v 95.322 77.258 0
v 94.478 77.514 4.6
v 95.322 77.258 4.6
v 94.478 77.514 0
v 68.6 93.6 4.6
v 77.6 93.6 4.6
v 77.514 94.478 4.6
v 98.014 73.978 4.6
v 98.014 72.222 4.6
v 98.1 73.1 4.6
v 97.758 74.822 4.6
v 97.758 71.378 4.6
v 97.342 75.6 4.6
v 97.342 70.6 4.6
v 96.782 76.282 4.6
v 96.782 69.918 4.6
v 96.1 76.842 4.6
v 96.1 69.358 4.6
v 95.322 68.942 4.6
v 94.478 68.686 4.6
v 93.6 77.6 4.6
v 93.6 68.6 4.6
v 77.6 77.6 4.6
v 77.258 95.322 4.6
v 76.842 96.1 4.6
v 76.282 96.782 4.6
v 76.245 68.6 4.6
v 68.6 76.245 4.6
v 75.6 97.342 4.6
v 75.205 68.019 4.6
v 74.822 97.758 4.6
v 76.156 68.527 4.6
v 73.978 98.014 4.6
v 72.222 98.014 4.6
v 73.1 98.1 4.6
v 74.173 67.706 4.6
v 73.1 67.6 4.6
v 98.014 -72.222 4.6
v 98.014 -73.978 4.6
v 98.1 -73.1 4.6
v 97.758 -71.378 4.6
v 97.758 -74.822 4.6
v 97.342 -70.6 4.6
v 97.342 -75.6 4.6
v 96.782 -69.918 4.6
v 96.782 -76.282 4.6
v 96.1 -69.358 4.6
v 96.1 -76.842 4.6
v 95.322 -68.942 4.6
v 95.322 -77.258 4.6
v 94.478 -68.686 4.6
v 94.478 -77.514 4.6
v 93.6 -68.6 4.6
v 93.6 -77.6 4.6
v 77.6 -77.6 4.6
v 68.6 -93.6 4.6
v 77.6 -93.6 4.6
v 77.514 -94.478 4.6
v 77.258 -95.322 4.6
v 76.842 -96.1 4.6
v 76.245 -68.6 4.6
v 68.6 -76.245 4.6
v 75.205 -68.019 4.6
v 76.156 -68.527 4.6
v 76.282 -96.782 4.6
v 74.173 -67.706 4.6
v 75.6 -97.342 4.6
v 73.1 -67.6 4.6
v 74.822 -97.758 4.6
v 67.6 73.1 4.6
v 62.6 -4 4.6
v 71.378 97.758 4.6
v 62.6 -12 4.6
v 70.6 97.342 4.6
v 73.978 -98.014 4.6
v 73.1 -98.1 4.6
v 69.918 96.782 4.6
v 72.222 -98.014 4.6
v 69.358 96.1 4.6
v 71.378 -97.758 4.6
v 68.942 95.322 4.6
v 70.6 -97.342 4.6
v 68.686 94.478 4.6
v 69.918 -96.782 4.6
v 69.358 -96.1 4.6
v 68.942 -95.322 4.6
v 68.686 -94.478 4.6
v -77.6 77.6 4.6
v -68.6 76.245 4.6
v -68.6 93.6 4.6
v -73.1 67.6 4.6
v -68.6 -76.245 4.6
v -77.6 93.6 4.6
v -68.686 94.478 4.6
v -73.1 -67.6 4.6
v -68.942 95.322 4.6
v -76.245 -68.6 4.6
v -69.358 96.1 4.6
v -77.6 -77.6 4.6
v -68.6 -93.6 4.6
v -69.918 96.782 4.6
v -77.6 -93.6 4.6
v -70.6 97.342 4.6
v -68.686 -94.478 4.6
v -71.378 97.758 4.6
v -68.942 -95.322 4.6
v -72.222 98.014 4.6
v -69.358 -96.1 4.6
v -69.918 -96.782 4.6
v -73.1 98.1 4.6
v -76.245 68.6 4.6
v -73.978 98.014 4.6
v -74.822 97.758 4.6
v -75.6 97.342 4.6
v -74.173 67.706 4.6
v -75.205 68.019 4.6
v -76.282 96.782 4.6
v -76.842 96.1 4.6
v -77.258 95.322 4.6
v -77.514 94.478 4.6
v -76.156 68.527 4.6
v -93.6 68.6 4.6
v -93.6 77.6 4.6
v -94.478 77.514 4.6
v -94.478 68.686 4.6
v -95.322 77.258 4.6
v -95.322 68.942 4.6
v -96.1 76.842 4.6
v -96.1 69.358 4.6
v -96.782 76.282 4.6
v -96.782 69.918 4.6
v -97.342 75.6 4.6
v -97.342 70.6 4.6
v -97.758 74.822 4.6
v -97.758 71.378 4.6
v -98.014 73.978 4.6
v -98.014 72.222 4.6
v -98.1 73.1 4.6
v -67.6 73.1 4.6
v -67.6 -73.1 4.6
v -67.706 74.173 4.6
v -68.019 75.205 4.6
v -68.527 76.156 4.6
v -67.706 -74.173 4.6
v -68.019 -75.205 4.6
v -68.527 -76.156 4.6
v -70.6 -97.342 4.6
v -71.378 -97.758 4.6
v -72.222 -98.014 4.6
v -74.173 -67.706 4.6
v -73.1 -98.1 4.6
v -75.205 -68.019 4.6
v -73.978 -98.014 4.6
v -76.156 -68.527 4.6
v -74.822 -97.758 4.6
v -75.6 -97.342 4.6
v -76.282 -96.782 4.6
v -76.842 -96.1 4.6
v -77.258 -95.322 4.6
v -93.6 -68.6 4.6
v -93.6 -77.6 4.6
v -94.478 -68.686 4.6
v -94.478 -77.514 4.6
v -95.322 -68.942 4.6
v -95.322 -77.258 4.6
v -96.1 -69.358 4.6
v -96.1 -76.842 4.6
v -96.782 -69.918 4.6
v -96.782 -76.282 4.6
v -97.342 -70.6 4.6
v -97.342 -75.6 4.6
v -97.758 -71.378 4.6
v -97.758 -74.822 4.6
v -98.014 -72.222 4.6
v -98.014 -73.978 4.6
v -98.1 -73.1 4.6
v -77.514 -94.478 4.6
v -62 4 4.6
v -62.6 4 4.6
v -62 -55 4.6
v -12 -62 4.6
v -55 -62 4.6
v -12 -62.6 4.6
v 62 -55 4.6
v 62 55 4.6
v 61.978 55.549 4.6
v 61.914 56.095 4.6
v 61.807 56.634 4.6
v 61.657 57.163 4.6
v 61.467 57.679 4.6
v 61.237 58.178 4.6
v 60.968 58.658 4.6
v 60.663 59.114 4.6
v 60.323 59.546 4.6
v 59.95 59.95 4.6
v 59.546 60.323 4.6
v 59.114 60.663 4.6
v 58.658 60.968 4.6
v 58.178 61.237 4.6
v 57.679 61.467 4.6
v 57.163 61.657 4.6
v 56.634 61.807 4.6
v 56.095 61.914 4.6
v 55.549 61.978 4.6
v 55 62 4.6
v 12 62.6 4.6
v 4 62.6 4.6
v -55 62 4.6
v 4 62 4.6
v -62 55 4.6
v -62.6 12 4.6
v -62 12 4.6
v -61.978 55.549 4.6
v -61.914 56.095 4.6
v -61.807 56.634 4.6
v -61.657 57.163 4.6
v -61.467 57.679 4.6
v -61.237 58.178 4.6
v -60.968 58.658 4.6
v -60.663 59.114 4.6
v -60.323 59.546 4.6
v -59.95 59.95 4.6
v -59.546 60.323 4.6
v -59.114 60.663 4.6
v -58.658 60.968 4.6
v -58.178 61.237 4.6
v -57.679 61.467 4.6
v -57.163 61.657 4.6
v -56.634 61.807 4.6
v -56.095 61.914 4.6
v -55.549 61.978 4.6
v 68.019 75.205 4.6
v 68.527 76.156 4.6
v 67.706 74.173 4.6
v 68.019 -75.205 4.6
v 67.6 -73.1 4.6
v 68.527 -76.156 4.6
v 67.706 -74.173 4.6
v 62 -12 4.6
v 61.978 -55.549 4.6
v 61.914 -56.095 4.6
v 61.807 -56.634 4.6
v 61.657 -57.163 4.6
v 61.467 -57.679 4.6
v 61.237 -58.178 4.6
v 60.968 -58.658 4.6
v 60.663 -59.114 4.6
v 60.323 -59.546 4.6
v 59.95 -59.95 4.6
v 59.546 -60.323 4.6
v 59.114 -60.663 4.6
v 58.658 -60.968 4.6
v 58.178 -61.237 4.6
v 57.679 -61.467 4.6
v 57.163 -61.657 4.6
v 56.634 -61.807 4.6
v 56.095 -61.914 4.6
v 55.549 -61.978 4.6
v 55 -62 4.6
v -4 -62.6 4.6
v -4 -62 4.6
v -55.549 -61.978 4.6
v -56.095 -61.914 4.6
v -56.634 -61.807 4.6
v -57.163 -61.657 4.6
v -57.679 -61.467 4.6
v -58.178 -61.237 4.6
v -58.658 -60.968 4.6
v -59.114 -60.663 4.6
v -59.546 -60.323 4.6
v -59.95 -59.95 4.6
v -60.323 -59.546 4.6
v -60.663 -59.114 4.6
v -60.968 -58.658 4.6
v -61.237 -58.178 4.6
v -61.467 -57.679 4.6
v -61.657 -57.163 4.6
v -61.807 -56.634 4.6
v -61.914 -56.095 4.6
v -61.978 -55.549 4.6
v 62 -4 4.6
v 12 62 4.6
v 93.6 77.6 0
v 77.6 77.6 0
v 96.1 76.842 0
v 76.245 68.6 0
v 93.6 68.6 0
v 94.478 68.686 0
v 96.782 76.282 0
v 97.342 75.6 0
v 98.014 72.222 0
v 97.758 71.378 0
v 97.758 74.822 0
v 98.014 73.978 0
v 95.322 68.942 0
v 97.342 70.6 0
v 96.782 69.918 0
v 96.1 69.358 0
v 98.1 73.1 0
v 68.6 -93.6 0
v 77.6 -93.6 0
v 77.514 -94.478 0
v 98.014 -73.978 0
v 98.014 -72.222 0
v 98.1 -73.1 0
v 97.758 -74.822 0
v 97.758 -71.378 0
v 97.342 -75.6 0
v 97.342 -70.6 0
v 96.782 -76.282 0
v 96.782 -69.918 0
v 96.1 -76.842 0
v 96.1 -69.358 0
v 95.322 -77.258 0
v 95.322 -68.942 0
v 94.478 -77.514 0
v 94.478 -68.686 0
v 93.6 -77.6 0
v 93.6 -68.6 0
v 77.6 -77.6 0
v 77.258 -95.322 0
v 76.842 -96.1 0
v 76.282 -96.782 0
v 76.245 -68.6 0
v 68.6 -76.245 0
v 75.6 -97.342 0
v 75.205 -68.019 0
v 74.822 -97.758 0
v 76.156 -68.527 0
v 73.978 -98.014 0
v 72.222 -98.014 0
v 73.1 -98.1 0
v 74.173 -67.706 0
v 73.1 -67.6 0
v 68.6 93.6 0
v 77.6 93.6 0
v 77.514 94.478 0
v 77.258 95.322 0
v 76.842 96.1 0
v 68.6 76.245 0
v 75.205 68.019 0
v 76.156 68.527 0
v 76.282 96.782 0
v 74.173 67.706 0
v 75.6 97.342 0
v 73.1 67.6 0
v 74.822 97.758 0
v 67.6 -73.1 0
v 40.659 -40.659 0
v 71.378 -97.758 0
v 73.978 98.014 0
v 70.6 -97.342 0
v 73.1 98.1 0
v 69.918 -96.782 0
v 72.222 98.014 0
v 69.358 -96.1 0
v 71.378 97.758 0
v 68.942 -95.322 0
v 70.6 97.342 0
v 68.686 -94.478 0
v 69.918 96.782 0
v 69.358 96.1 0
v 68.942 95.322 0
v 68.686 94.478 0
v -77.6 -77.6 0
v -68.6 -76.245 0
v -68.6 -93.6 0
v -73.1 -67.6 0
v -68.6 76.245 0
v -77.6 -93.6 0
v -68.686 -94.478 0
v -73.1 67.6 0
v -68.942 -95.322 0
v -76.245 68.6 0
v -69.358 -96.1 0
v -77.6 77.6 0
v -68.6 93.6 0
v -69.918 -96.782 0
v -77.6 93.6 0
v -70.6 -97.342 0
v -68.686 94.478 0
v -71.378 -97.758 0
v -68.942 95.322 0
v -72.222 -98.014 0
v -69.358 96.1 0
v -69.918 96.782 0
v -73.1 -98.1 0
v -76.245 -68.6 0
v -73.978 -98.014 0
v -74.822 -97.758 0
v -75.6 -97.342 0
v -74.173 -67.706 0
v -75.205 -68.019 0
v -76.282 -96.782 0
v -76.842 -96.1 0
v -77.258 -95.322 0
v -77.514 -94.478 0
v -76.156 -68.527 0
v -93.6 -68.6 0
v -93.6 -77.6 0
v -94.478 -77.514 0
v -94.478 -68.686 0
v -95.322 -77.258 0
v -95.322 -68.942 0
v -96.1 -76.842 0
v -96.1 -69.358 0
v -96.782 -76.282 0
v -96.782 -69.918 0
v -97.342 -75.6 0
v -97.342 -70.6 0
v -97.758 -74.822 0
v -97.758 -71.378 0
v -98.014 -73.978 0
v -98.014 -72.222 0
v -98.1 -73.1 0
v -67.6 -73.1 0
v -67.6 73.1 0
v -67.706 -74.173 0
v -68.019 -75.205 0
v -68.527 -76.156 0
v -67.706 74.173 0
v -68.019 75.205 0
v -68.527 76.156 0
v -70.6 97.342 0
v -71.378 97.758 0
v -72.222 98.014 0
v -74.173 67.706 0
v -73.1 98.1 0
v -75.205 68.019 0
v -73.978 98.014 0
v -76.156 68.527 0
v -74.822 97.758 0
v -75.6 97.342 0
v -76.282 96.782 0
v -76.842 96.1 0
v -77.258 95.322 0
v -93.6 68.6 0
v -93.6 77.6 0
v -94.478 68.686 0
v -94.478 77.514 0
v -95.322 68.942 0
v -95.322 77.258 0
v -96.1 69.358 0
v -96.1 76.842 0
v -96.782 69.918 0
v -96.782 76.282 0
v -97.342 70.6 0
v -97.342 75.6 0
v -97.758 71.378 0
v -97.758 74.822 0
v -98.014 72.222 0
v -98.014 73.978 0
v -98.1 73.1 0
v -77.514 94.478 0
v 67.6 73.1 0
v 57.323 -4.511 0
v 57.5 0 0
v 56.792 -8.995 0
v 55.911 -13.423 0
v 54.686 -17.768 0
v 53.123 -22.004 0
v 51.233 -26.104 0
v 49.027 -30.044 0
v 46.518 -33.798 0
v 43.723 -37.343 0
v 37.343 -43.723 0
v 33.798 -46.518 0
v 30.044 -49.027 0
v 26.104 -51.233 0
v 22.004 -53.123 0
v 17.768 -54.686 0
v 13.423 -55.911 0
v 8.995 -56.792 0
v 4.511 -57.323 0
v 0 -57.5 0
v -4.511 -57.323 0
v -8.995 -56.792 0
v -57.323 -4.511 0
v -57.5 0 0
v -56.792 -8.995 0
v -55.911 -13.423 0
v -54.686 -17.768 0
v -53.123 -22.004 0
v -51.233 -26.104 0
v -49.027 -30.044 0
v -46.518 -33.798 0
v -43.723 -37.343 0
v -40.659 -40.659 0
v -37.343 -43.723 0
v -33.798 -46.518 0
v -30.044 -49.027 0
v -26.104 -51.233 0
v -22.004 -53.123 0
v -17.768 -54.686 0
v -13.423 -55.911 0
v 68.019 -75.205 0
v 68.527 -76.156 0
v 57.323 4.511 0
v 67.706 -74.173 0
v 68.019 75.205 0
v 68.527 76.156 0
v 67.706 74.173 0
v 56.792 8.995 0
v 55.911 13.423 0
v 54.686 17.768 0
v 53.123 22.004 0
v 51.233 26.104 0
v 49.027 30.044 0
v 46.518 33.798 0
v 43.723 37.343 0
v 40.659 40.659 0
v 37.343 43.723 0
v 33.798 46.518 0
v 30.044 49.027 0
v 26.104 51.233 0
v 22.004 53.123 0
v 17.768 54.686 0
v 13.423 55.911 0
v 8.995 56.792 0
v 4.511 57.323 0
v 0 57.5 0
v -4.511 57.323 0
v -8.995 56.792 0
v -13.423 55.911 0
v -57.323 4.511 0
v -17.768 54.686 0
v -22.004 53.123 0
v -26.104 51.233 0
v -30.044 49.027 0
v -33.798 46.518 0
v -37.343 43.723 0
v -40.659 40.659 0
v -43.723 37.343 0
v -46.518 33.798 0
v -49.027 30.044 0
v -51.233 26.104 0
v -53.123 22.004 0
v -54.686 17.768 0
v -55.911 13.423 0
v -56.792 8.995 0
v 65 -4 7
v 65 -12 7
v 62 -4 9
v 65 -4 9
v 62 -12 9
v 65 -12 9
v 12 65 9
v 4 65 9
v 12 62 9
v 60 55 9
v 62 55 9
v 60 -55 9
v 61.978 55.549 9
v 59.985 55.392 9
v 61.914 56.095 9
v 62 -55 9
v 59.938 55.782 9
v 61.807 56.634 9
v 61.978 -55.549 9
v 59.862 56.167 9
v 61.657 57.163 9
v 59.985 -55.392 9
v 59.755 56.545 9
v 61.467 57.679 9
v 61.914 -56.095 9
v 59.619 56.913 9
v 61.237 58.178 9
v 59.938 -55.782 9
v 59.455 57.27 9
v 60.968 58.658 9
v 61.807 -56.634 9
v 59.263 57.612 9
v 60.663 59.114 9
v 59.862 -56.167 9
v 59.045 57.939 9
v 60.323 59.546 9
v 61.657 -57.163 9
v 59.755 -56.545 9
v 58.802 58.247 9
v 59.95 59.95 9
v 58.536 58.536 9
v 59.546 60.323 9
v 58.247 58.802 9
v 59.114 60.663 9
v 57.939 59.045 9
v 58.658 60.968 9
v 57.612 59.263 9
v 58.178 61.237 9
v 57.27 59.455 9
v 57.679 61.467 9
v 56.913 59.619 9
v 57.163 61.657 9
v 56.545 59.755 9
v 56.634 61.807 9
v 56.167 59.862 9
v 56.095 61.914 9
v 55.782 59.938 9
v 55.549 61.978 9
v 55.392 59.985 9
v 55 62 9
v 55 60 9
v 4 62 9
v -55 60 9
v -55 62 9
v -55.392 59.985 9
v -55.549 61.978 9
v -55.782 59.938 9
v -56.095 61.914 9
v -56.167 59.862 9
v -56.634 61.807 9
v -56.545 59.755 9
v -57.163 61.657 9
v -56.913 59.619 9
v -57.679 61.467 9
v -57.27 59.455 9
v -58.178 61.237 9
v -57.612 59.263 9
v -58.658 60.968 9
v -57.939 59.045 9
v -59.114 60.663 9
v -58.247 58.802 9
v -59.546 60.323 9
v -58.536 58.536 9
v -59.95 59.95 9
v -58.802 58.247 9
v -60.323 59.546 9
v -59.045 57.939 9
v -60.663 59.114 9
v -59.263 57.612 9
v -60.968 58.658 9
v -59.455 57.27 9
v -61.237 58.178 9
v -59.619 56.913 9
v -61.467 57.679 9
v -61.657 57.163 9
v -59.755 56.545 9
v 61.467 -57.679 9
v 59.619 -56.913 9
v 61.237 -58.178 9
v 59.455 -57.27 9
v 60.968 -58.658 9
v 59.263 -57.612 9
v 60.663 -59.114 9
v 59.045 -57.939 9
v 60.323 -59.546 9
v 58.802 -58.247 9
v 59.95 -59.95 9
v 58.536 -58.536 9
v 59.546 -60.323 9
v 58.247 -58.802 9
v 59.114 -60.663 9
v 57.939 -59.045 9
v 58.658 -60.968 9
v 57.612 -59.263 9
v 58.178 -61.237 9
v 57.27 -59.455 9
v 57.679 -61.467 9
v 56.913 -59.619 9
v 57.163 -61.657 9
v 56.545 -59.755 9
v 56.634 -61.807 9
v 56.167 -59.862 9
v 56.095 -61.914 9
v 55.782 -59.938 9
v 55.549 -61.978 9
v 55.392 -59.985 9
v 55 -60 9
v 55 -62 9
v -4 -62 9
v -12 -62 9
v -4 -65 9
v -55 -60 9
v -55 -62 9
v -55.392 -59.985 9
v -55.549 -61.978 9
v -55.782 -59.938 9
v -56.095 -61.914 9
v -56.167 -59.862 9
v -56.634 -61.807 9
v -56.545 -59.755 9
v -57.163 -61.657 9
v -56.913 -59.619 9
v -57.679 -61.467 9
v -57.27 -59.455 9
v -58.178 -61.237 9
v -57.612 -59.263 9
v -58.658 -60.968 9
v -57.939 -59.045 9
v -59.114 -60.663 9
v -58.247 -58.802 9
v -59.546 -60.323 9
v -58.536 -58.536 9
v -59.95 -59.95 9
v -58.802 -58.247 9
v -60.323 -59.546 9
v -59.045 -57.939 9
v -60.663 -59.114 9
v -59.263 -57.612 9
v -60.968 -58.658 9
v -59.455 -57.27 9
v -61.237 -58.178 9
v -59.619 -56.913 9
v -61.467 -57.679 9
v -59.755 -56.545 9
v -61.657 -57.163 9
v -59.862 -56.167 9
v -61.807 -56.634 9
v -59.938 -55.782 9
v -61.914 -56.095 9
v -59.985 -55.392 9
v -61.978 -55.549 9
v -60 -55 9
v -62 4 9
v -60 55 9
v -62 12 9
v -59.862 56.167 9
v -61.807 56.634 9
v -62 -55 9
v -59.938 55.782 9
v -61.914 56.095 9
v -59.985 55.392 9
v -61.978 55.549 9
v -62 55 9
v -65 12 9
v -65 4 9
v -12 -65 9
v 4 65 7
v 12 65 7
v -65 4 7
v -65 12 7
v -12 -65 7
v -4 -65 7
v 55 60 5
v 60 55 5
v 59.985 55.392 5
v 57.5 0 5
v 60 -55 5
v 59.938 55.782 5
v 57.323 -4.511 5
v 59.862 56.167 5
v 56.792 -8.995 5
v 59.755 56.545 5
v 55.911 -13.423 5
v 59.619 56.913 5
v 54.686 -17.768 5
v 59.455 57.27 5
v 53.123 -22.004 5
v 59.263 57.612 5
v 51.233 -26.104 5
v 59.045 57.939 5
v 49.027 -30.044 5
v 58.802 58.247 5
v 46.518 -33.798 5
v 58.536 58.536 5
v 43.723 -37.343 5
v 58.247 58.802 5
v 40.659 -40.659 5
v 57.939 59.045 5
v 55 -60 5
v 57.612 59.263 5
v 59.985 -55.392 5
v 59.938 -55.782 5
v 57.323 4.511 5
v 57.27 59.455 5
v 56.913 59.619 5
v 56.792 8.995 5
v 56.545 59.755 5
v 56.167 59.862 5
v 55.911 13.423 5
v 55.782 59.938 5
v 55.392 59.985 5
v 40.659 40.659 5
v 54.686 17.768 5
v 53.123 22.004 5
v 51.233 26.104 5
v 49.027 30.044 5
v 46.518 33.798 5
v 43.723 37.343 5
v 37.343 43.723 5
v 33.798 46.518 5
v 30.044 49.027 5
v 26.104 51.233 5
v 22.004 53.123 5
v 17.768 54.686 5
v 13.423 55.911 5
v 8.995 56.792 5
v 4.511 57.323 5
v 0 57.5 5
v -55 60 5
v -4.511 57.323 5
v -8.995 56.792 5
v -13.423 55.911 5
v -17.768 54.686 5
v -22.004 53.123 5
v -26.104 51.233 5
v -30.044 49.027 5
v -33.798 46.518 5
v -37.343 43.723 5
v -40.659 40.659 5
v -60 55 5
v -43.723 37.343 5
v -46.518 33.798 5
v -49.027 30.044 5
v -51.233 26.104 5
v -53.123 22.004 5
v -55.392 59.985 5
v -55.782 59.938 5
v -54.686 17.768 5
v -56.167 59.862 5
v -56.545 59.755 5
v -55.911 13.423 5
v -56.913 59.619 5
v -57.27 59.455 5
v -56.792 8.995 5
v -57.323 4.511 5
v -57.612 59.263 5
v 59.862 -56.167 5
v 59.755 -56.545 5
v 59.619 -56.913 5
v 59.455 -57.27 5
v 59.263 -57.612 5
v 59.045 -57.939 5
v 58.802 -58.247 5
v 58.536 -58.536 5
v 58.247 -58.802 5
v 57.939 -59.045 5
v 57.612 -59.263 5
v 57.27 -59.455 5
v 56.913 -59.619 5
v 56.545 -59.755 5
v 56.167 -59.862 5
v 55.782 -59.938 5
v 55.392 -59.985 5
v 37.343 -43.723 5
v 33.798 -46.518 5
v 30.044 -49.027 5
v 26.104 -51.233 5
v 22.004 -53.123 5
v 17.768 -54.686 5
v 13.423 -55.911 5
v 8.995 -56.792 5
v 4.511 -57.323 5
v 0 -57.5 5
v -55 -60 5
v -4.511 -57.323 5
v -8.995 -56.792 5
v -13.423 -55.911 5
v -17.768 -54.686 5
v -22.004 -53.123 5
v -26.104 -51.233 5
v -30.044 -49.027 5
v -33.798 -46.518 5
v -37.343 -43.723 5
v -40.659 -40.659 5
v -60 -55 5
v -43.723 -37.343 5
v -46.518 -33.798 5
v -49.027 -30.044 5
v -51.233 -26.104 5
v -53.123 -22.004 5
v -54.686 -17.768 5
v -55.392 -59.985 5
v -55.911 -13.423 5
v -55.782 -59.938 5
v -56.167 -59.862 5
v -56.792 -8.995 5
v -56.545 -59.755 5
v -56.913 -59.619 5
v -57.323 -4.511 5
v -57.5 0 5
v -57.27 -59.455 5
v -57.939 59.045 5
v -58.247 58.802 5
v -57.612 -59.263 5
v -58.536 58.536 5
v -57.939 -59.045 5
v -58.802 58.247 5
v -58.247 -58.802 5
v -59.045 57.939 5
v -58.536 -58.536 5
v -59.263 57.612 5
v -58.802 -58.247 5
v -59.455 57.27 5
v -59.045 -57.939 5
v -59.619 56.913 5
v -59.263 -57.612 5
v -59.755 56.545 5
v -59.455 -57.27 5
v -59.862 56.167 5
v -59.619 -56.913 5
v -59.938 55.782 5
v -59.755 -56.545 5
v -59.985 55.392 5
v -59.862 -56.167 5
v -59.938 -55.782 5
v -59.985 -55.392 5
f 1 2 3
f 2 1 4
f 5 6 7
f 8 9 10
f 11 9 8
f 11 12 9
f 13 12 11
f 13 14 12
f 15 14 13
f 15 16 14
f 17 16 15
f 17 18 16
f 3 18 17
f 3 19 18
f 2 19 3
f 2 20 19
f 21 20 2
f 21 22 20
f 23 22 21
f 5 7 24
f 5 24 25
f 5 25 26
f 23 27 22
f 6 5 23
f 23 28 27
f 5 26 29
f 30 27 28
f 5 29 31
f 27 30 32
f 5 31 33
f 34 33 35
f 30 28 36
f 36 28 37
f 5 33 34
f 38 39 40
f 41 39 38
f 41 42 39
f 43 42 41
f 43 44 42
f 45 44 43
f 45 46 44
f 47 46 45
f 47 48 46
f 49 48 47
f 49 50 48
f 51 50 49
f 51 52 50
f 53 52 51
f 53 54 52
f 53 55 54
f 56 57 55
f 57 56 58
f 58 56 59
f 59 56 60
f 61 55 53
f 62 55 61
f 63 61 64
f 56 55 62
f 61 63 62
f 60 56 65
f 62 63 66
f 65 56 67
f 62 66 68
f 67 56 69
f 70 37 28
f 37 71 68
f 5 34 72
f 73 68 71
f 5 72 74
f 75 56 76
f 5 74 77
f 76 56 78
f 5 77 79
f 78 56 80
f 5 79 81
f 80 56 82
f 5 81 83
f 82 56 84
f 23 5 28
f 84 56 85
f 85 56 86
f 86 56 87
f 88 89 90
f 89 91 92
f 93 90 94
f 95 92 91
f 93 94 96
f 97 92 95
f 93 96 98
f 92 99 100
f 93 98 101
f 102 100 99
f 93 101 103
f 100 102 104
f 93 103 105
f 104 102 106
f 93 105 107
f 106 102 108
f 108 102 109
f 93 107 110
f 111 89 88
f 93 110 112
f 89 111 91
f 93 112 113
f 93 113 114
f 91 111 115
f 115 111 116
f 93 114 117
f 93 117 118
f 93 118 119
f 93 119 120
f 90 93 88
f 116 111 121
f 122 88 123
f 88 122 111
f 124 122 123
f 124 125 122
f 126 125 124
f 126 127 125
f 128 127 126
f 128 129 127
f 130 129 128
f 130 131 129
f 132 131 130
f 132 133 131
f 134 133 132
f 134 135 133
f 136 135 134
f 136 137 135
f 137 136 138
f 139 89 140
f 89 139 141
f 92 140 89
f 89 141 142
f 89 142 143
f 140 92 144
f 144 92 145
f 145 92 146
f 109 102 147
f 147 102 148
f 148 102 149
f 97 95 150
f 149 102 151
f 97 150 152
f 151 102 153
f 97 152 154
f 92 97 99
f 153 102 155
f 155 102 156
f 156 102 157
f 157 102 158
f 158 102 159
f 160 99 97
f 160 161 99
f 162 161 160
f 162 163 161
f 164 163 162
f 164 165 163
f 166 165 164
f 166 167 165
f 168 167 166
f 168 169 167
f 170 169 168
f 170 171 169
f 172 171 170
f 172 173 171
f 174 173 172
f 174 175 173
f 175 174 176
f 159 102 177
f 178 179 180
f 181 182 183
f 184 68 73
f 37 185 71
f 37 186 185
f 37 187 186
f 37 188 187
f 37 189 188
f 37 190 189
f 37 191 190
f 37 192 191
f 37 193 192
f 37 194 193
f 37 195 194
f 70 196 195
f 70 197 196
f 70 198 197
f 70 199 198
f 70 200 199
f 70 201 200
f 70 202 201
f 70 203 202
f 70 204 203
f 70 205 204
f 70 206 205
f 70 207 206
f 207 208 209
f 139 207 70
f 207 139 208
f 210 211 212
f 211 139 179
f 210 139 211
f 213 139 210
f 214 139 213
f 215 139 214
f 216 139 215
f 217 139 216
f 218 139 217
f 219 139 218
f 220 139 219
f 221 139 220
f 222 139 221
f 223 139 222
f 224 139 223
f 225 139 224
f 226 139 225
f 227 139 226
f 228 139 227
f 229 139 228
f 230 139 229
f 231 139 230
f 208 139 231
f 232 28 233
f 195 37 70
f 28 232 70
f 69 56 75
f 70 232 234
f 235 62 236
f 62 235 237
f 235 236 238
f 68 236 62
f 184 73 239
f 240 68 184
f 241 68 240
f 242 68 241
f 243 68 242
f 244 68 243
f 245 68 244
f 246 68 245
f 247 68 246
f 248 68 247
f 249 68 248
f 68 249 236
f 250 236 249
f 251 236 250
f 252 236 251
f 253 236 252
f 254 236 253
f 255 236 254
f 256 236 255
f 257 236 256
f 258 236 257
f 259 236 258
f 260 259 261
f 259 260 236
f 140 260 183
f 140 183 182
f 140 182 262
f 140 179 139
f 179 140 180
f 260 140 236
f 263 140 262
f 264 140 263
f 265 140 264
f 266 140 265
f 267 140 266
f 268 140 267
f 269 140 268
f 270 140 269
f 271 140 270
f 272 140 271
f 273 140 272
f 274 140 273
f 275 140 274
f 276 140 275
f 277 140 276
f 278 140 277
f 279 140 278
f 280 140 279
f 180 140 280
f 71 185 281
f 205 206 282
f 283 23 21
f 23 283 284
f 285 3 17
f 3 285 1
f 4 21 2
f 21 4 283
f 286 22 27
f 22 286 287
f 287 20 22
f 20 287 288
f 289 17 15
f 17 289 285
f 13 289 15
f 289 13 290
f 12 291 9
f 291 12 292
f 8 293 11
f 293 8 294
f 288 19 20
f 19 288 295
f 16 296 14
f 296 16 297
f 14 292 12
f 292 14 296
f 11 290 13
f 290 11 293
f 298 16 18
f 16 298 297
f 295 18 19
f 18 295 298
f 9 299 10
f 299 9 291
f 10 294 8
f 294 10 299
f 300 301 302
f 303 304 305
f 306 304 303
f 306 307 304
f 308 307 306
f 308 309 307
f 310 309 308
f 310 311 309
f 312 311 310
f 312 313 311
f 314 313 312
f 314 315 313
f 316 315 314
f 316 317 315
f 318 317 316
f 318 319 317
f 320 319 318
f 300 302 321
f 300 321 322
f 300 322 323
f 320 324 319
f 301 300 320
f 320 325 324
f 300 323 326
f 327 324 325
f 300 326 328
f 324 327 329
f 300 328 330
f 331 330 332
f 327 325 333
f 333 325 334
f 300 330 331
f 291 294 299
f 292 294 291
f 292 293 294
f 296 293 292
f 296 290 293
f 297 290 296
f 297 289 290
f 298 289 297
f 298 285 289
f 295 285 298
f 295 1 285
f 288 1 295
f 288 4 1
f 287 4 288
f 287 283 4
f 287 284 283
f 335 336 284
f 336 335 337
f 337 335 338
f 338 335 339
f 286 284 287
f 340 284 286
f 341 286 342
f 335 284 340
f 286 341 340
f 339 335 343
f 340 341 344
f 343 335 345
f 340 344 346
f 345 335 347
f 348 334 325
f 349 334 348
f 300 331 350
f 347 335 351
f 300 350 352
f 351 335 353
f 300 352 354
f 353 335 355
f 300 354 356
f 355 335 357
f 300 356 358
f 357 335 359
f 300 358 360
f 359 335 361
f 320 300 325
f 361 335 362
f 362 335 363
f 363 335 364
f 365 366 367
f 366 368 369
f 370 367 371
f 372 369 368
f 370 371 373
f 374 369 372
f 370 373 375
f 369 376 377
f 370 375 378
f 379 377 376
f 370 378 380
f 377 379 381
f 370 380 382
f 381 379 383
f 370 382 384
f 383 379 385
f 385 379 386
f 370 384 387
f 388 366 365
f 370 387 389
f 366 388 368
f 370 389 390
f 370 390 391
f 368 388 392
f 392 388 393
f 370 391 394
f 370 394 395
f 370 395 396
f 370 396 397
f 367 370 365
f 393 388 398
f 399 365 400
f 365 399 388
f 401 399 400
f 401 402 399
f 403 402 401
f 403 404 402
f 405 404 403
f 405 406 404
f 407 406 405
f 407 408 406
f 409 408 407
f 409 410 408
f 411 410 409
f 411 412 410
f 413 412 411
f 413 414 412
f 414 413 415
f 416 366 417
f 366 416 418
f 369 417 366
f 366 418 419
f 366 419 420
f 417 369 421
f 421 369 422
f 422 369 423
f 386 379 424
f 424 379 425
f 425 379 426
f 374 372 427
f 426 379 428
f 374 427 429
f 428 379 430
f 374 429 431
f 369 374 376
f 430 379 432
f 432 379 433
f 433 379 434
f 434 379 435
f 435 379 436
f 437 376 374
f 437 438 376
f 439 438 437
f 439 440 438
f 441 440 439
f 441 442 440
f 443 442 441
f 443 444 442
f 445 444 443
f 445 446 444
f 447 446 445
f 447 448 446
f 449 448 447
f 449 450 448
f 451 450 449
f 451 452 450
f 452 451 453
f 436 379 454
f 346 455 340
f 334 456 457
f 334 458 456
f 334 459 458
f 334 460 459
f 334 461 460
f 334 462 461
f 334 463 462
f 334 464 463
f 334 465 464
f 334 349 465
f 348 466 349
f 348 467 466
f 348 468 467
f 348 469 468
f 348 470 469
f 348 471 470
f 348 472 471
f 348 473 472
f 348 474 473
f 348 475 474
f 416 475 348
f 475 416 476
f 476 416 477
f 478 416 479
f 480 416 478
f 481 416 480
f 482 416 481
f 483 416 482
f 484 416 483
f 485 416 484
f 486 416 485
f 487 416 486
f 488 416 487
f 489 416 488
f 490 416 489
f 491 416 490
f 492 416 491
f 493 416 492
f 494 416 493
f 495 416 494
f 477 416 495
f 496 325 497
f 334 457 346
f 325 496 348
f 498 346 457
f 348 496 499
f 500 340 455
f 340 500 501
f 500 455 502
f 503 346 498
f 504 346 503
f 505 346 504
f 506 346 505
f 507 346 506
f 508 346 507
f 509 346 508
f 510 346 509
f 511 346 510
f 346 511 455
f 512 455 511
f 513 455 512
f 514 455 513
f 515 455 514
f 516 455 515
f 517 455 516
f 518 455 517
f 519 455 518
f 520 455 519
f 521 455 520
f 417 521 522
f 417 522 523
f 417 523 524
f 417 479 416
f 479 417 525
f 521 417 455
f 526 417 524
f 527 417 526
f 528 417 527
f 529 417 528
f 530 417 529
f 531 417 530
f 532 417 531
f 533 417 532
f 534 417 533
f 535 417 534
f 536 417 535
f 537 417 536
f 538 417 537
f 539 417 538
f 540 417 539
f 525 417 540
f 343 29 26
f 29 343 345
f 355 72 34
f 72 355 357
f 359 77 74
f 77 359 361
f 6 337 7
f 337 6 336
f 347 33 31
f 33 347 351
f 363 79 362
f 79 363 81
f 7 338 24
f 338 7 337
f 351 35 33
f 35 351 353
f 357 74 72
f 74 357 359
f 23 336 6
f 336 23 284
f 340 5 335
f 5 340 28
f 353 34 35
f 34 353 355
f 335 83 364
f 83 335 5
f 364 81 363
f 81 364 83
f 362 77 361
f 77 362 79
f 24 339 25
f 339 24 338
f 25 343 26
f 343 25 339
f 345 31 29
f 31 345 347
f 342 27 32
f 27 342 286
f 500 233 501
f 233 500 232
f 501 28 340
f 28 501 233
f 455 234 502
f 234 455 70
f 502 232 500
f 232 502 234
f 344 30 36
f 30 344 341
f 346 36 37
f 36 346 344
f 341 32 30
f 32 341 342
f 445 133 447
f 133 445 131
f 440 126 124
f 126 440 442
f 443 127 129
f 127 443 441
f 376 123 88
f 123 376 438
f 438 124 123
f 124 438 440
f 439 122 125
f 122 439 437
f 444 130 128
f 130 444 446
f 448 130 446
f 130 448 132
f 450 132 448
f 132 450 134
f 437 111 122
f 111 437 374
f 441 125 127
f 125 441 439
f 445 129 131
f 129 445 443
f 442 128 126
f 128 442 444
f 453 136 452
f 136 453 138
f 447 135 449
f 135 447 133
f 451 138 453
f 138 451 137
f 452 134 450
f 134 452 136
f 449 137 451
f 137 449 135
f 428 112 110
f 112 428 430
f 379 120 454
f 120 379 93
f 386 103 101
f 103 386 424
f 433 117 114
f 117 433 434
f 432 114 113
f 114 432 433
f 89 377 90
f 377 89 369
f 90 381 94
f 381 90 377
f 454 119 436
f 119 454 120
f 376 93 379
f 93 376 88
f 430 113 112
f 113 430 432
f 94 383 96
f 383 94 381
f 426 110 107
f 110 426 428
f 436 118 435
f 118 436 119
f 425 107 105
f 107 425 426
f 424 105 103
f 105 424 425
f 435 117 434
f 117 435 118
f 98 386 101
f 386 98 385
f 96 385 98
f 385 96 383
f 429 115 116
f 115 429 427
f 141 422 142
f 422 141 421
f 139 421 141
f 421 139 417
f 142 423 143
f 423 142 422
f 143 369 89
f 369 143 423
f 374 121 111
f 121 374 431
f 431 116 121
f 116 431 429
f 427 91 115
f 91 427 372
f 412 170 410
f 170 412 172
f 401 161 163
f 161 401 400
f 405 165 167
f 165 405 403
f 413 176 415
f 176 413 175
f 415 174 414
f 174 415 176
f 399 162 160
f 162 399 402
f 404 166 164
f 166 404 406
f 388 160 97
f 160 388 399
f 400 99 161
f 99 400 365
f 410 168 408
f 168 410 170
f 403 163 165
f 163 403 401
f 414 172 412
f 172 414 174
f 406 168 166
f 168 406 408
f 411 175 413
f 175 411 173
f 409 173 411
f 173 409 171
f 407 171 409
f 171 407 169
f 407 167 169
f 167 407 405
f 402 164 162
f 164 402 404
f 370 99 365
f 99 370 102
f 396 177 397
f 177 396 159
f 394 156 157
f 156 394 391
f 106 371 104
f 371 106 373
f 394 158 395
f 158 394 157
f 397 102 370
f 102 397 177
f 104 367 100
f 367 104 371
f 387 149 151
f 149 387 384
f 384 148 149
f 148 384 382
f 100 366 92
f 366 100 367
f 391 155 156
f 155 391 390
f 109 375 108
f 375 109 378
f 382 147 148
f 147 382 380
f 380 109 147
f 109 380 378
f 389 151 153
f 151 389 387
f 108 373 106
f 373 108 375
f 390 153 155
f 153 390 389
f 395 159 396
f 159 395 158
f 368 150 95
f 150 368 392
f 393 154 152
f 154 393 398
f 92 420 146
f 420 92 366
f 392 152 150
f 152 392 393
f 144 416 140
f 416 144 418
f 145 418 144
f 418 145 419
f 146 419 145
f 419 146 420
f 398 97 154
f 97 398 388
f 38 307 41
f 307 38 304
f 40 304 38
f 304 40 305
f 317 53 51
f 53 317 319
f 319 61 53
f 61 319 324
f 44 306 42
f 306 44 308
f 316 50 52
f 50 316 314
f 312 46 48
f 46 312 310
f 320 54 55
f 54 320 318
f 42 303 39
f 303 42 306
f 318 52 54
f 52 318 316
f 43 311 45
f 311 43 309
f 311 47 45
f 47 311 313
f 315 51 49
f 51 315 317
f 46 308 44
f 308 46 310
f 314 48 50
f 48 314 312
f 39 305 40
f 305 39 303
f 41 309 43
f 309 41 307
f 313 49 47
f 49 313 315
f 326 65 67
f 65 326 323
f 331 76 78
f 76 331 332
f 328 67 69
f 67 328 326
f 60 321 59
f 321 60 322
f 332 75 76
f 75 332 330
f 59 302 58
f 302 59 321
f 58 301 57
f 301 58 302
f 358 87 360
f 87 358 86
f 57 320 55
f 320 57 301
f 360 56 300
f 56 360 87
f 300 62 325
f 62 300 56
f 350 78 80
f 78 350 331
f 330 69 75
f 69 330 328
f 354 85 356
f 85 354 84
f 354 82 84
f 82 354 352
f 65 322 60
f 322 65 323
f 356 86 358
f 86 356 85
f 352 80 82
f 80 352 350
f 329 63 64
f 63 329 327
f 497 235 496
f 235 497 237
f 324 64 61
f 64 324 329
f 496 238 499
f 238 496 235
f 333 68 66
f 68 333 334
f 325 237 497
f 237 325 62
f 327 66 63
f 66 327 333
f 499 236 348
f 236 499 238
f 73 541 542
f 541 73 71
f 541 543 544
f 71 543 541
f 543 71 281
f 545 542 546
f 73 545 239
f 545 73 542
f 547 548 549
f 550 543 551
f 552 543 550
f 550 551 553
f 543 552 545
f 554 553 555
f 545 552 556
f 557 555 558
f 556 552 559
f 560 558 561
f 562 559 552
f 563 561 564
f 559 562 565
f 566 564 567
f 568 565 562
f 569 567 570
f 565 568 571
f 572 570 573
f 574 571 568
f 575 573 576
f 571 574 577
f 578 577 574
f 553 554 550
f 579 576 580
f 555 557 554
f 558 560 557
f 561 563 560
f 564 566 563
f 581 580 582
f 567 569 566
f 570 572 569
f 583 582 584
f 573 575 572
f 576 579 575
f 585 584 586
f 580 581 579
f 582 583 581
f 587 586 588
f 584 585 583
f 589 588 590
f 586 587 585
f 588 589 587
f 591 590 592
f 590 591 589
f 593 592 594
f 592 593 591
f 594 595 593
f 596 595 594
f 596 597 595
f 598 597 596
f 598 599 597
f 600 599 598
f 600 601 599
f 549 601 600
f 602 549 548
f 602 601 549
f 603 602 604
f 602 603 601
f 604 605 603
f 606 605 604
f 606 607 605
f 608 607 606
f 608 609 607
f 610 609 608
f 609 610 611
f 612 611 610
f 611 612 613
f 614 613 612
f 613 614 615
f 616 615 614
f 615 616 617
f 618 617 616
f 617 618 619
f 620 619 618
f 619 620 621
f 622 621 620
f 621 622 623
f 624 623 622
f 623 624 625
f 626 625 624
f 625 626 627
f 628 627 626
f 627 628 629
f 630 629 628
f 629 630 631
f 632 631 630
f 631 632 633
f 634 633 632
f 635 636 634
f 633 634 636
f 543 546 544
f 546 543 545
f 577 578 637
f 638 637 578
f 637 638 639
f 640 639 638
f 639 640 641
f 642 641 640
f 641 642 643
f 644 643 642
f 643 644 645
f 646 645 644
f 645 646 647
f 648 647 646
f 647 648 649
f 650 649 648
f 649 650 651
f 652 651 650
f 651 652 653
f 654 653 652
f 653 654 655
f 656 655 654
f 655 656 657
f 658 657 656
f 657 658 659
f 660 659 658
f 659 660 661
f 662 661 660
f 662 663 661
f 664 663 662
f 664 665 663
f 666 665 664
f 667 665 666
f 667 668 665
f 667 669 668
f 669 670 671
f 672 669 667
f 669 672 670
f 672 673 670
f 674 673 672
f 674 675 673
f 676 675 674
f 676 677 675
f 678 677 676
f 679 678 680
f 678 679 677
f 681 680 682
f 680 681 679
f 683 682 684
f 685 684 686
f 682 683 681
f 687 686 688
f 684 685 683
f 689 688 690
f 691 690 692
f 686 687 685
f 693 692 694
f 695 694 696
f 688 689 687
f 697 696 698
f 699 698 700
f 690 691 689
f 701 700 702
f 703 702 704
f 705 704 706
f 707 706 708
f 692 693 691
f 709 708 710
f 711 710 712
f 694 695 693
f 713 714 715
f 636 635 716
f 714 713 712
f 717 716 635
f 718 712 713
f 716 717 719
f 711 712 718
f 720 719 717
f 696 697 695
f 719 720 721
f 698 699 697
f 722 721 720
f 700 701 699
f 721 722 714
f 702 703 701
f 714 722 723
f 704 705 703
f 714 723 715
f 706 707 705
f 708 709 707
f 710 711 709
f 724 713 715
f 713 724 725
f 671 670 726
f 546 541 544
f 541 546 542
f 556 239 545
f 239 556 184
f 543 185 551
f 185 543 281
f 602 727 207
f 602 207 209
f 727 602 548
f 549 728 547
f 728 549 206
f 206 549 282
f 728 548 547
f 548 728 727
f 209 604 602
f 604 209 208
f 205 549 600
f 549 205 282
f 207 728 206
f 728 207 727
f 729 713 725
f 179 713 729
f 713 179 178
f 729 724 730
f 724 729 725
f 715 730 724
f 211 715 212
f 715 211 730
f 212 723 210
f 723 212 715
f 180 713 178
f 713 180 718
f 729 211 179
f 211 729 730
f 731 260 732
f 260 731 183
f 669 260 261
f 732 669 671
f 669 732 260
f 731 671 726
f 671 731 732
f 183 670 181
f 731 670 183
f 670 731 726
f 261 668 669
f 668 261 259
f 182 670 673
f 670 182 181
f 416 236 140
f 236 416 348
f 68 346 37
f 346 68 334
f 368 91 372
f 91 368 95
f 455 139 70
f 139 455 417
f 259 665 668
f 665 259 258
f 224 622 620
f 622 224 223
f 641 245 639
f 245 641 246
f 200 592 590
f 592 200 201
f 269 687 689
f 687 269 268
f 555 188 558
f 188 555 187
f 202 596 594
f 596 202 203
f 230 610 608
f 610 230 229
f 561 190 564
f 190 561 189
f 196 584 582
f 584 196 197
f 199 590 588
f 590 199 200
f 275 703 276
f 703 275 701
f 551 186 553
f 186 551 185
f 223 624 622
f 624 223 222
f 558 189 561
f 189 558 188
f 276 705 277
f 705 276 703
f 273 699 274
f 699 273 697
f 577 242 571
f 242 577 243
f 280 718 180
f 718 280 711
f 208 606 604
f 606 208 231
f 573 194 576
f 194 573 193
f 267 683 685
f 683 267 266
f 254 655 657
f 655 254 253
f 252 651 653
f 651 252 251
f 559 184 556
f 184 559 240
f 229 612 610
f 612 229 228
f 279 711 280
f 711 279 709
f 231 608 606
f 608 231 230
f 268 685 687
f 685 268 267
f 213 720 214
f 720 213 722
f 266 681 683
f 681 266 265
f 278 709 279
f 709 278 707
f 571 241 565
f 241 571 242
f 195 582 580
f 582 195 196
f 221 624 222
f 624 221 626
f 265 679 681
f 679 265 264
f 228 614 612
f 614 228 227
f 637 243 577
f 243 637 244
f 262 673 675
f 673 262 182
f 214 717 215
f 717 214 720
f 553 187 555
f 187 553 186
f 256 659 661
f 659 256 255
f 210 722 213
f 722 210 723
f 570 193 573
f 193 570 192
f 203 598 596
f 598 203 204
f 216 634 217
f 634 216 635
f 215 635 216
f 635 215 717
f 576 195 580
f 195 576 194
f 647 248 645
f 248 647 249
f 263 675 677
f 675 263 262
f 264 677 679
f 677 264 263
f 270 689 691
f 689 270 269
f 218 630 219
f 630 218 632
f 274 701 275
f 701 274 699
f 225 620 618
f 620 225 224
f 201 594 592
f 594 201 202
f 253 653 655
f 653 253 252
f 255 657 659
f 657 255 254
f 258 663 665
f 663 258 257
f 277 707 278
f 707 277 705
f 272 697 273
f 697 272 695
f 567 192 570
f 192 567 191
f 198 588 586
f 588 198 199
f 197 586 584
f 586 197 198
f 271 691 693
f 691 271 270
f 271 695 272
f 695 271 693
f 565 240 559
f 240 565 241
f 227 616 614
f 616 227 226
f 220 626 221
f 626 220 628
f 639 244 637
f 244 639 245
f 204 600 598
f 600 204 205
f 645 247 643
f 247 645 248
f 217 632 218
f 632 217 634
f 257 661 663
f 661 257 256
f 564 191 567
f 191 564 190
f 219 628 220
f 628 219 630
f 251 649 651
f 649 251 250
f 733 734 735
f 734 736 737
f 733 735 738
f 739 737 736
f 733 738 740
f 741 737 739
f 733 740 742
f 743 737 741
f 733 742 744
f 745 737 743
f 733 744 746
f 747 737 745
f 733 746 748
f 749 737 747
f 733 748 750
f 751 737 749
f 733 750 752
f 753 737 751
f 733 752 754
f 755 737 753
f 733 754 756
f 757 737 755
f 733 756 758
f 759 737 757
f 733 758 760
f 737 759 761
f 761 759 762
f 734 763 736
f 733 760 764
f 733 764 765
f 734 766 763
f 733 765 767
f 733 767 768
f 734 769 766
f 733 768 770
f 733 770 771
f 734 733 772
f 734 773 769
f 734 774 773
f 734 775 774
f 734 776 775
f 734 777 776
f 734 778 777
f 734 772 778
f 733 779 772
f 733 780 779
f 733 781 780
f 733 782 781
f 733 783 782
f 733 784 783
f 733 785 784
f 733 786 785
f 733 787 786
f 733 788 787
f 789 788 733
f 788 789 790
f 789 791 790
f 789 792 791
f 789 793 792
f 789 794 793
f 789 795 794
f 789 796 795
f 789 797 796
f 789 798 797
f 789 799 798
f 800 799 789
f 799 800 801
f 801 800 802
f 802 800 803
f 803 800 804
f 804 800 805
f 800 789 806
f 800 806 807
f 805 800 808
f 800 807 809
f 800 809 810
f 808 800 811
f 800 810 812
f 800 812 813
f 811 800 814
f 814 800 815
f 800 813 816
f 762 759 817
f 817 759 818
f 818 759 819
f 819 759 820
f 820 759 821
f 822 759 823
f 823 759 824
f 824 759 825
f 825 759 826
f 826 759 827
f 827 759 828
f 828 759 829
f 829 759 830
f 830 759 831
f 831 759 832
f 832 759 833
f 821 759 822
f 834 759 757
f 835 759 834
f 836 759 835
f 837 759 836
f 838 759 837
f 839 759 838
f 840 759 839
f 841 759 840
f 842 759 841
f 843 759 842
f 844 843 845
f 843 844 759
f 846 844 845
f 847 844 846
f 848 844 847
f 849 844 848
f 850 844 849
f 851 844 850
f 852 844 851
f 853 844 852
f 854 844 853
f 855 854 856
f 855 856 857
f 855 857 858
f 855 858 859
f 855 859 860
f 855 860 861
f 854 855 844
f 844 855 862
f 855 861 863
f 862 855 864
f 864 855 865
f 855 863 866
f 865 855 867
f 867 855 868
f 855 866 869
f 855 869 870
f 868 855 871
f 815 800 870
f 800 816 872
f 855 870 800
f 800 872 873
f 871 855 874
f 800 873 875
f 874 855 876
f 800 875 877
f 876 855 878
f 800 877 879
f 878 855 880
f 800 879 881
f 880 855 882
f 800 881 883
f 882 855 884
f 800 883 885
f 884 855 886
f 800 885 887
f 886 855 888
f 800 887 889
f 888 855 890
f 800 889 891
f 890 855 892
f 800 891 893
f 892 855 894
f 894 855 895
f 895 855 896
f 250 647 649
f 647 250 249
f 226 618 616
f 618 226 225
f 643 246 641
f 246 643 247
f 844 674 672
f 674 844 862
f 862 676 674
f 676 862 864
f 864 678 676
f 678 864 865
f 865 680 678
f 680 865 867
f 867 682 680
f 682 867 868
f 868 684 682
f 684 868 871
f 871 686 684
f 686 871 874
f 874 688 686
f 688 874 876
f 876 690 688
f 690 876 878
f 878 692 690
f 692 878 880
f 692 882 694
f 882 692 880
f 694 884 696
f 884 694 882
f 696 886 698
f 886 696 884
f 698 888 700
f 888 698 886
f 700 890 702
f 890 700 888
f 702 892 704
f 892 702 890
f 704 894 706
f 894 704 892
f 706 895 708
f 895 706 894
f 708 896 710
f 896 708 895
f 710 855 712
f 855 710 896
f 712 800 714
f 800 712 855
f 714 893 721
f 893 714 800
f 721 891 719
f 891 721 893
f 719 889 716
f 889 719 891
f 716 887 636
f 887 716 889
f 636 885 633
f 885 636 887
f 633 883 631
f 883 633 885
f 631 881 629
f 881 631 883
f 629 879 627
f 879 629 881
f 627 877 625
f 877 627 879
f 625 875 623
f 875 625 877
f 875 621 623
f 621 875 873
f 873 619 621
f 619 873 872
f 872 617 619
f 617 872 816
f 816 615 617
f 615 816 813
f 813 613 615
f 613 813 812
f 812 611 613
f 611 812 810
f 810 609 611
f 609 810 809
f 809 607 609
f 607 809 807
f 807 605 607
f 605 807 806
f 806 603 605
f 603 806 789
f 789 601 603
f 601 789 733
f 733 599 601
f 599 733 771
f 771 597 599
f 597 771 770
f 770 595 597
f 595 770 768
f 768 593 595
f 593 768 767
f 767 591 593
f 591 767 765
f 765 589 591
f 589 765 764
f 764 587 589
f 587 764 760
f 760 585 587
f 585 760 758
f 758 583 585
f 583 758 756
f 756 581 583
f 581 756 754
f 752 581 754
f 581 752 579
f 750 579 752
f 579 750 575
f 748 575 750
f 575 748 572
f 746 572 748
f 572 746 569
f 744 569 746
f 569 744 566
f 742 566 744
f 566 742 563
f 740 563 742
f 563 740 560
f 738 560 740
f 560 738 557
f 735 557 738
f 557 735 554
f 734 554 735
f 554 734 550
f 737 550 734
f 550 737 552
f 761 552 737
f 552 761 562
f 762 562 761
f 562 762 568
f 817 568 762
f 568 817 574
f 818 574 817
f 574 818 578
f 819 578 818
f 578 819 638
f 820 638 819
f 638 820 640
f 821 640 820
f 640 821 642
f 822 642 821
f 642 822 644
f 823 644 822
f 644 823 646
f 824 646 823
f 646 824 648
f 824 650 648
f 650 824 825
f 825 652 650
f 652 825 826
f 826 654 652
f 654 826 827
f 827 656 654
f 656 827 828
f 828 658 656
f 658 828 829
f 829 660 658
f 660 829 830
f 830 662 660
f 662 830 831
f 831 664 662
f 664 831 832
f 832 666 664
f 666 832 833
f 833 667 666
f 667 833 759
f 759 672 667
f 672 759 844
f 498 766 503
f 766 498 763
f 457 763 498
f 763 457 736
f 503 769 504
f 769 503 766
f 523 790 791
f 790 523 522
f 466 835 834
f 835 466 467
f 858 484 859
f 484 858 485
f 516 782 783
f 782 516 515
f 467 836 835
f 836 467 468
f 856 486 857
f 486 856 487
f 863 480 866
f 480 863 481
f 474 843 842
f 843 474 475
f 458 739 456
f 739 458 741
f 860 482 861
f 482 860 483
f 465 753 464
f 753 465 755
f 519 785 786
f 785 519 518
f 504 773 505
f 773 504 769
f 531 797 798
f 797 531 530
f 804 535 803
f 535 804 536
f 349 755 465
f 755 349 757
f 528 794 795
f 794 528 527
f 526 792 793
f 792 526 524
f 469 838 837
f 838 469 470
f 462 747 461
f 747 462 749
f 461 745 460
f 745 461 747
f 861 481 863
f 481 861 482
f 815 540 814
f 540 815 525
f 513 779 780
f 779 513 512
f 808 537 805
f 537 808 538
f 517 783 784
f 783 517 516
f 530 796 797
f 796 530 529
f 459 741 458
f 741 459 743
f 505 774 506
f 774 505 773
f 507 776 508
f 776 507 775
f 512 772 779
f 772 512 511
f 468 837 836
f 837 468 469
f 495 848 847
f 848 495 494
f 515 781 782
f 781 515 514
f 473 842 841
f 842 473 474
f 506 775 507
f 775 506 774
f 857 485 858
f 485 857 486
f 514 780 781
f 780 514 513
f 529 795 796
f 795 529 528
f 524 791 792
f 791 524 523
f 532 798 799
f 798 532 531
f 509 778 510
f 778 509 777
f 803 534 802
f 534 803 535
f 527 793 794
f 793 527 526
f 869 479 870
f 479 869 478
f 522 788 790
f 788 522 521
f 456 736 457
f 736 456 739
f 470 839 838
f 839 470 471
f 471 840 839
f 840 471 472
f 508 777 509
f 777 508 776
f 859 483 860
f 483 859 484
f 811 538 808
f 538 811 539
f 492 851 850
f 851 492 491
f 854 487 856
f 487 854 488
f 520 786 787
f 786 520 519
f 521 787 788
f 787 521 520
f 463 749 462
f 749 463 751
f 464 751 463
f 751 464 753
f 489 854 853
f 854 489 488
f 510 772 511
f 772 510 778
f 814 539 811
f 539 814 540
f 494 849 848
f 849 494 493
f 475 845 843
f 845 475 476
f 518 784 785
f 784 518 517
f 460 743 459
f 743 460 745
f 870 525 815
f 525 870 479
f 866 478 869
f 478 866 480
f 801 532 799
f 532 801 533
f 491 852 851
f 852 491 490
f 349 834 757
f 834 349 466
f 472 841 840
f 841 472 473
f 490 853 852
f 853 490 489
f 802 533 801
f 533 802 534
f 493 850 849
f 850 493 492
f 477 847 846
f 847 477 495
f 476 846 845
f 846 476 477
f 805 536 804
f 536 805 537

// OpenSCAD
// file: fan-tub-adapter-params.scad
// Fan-Tub Adapter v2.0 — Shared Parameters
// Used by both base plate and retention clip designs.

// === Waffle Grid Measurements ===
square_size   = 63.7;    // mm — waffle square (channel edge to channel edge)
channel_w     = 9.4;     // mm — channel width between adjacent squares
waffle_h      = 4.6;     // mm — waffle square height above channel surface

// === Cutout ===
cutout        = 2 * square_size + channel_w;  // 136.8mm

// === Frame Plate ===
frame_t_inner = 5.0;     // mm — inner zone thickness (fan mount)
frame_t_outer = waffle_h; // mm — outer zone (flange + branches, flush with waffle tops)
corner_r      = 4;       // mm — waffle square corner radius

// === Flange ===
flange_w      = channel_w / 2;  // 4.7mm

// === Fan Geometry ===
fan_frame     = 119;     // mm — fan outer dimension (square)
fan_frame_t   = 24.7;    // mm — fan frame thickness (measured)
fan_opening   = 115;     // mm — center airflow diameter (matches fan inner circle)
fan_corner_r  = 5;       // mm — fan frame corner radius

// === Locating Rim ===
loc_rim_h     = 4.0;     // mm — height of rim above inner plate (was 1.5 in v1)
loc_rim_wall  = 2;       // mm — rim wall thickness
loc_clearance = 0.5;     // mm — clearance around fan frame (per side)

// === Y-Branch Geometry ===
branch_w      = 9.0;     // mm — branch width (9.4 channel - 0.4 clearance)
branch_len    = 25;      // mm — engagement length into channel from root

// === Clip Mechanism ===
// Ledge on rim exterior: chamfered underside for printability.
//   Bottom zone: 45° chamfer ramps from 0 to full depth over clip_ledge_depth height.
//   Top zone:    flat engagement face, clip_ledge_flat mm tall — hook catches here.
//   Total ledge height = clip_ledge_depth (chamfer) + clip_ledge_flat (flat).
clip_ledge_depth   = 3.0;  // mm — outward protrusion; also sets chamfer height (45°)
clip_ledge_flat    = 2.0;  // mm — flat engagement zone at ledge top (hook catches here)
clip_ledge_h       = clip_ledge_depth + clip_ledge_flat;  // 5.0mm total ledge height
clip_arm_w         = 8.0;  // mm — arm width
clip_arm_t         = 1.5;  // mm — arm thickness
clip_arm_len       = 22.05; // mm — arm length (preload-adjusted)
clip_hook_overhang = 2.5;  // mm — hook inward protrusion (snap deflection + engagement)
clip_hook_h        = 3.0;  // mm — hook height
clip_frame_t       = 2.0;  // mm — clip frame thickness
clip_tab_w         = 3.5;  // mm — outward bridge from frame edge to arm

// === Derived Values ===
frame_outer   = cutout + 2 * flange_w;        // 146.2mm
branch_root   = cutout / 2 + channel_w / 2;   // 73.1mm

loc_inner     = fan_frame + 2 * loc_clearance; // 120mm
loc_outer     = loc_inner + 2 * loc_rim_wall;  // 124mm

// Vertical stackup (Z from base plate bottom)
z_inner_top   = frame_t_inner;                 // 5.0
z_rim_top     = frame_t_inner + loc_rim_h;     // 9.0
z_ledge_bot   = z_rim_top - clip_ledge_h;      // 7.5 (ledge bottom, 1.5mm from rim top)
z_fan_top     = frame_t_inner + fan_frame_t;   // 29.7
z_clip_top    = z_fan_top + clip_frame_t;      // 31.7

// Bounding boxes
base_bbox_x   = 2 * (branch_root + branch_len); // 196.2
base_bbox_y   = base_bbox_x;
base_bbox_z   = z_rim_top;                       // 9.0
// file: common.scad
// Common FDM helper modules
// Include fdm-pla.scad before using these.

include <fdm-pla.scad>

// A hole compensated for FDM shrinkage.
// d = nominal diameter, h = depth, center = center vertically
module fdm_hole(d, h, center=false) {
  cylinder(d=d + FDM_HOLE_COMPENSATION, h=h, center=center, $fn=max(32, ceil(d*4)));
}

// A shaft/pin sized for press fit into a compensated hole.
// d = nominal diameter, h = height
module fdm_shaft(d, h, center=false) {
  cylinder(d=d + FDM_PRESS_FIT * 2, h=h, center=center, $fn=max(32, ceil(d*4)));
}

// Bolt pattern — places children at evenly spaced points on a circle.
// n = number of bolts, r = bolt circle radius
module bolt_pattern(n, r) {
  for (i = [0 : n-1]) {
    angle = i * 360 / n;
    translate([r * cos(angle), r * sin(angle), 0])
      children();
  }
}

// Cylinder with a 45° chamfer on the bottom edge.
// d = diameter, h = height, chamfer = chamfer size
module chamfer_cylinder(d, h, chamfer=0.5) {
  union() {
    // Main body above chamfer
    translate([0, 0, chamfer])
      cylinder(d=d, h=h - chamfer, $fn=max(32, ceil(d*4)));
    // Chamfer cone
    cylinder(d1=d - chamfer*2, d2=d, h=chamfer, $fn=max(32, ceil(d*4)));
  }
}
// file: bambu-x1c.scad
// Bambu Lab X1 Carbon — build volume and dimension reporting

BED_X = 256;
BED_Y = 256;
BED_Z = 256;

// Assert a part fits within the build volume.
// Call with the bounding box dimensions of your part.
module assert_fits(x, y, z) {
  assert(x <= BED_X, str("Part X (", x, "mm) exceeds bed X (", BED_X, "mm)"));
  assert(y <= BED_Y, str("Part Y (", y, "mm) exceeds bed Y (", BED_Y, "mm)"));
  assert(z <= BED_Z, str("Part Z (", z, "mm) exceeds bed Z (", BED_Z, "mm)"));
}

// Echo dimensions in a parseable format for the Node.js pipeline.
// Call at the end of your .scad file with the part's bounding box.
module report_dimensions(x, y, z, label="part") {
  assert_fits(x, y, z);
  echo(str("DIMENSION:", label, ":x=", x));
  echo(str("DIMENSION:", label, ":y=", y));
  echo(str("DIMENSION:", label, ":z=", z));
}
// file: fdm-pla.scad
// FDM PLA Tolerance Constants
// Use these in all designs to ensure proper fit on the Bambu X1C.

// Fit offsets (applied to radius or per-side dimension)
FDM_PRESS_FIT     = -0.15;  // Friction-held joints
FDM_CLEARANCE_FIT =  0.25;  // Easy insert/remove
FDM_SLIDING_FIT   =  0.35;  // Moving parts

// Hole compensation (applied to diameter)
FDM_HOLE_COMPENSATION = 0.4;

// Structural minimums
MIN_WALL = 1.2;       // 3 perimeters at 0.4mm nozzle
MIN_FLOOR_CEIL = 0.8; // 4 layers at 0.2mm

// Overhang and bridging limits
MAX_OVERHANG_ANGLE = 45;  // degrees from vertical
MAX_BRIDGE_SPAN    = 10;  // mm unsupported horizontal span

// Layer and nozzle
NOZZLE_DIA   = 0.4;
LAYER_HEIGHT = 0.2;
// main file
// Fan-Tub Adapter v2.0 — Base Plate
// Caulked to lid. Fan drops into locating rim.
// Clip ledges on rim exterior for tool-free retention clip.
// No bolt holes or thumbscrew holes — all fastener features removed from v1.

include <fdm-pla.scad>
include <bambu-x1c.scad>
include <common.scad>
include <fan-tub-adapter-params.scad>

$fn = 80;

// Validate constraints
assert(frame_t_outer >= MIN_WALL, str("Outer thickness ", frame_t_outer, " below min wall ", MIN_WALL));
assert(loc_rim_h >= MIN_WALL, str("Rim height ", loc_rim_h, " below min wall ", MIN_WALL));

// Report dimensions for pipeline
report_dimensions(base_bbox_x, base_bbox_y, base_bbox_z, "base");


// === Modules ===

module rounded_square(size, r) {
    offset(r=r) offset(r=-r) square(size, center=true);
}

// Outer plate — full frame at waffle-flush thickness
module outer_plate() {
    linear_extrude(frame_t_outer)
        rounded_square(frame_outer, corner_r);
}

// Inner pad — thickened fan mount zone
module inner_pad() {
    linear_extrude(frame_t_inner)
        rounded_square(loc_outer, fan_corner_r + loc_rim_wall);
}

// Center opening — through entire height
module center_opening() {
    translate([0, 0, -1])
        cylinder(d=fan_opening, h=base_bbox_z + 2);
}

// Fan locating rim — 4.0mm tall (was 1.5mm in v1)
module fan_locating_rim() {
    translate([0, 0, frame_t_inner]) {
        linear_extrude(loc_rim_h) {
            difference() {
                rounded_square(loc_outer, fan_corner_r + loc_rim_wall);
                rounded_square(loc_inner, fan_corner_r);
            }
        }
    }
}

// Clip ledges — four outward protrusions on rim exterior, one per side.
// Each ledge has a 45° chamfer on its underside for printability (no overhang),
// followed by a flat engagement zone at the top where the hook catches.
//
// XZ cross-section (X = radial outward, Z = up):
//
//   z_flat_top  ┌──────────────┐  rim top / ledge top
//               │  flat zone   │  clip_ledge_flat mm tall — hook catches here
//   z_flat_bot  ├──────────────┘
//               │╲  chamfer    |  45°: rises clip_ledge_depth mm over clip_ledge_depth mm
//   z_cham_bot  ╧              |  chamfer start — 0 protrusion, self-supporting from here
//               x_rim          x_ledge
//
module clip_ledges() {
    x_rim    = loc_outer / 2;                    // 62mm — rim outer face
    x_ledge  = x_rim + clip_ledge_depth;         // 65mm — ledge outer face
    z_top    = frame_t_inner + loc_rim_h;        // 9.0mm — rim top
    z_flat_bot = z_top - clip_ledge_flat;        // 7.0mm — flat zone bottom
    z_cham_bot = z_flat_bot - clip_ledge_depth;  // 4.0mm — chamfer start (45°)

    for (angle = [0, 90, 180, 270]) {
        rotate([0, 0, angle])
        translate([0, -clip_arm_w/2, 0])
            rotate([90, 0, 0])
                linear_extrude(clip_arm_w)
                    polygon([
                        [x_rim,   z_cham_bot],  // chamfer base (0 protrusion)
                        [x_ledge, z_flat_bot],  // chamfer top / flat bottom
                        [x_ledge, z_top],       // ledge outer top
                        [x_rim,   z_top],       // ledge inner top
                    ]);
    }
}

// Y-branch fork at a corner — outer zone thickness
module y_branch(corner_idx) {
    signs = [
        [ 1,  1],
        [-1,  1],
        [-1, -1],
        [ 1, -1],
    ];
    sx = signs[corner_idx][0];
    sy = signs[corner_idx][1];

    cx = sx * branch_root;
    cy = sy * branch_root;

    // Arm along X-axis channel
    hull() {
        translate([cx, cy, 0])
            cylinder(d=branch_w, h=frame_t_outer, $fn=32);
        translate([cx + sx * (branch_len - branch_w/2), cy, 0])
            cylinder(d=branch_w, h=frame_t_outer, $fn=32);
    }

    // Arm along Y-axis channel
    hull() {
        translate([cx, cy, 0])
            cylinder(d=branch_w, h=frame_t_outer, $fn=32);
        translate([cx, cy + sy * (branch_len - branch_w/2), 0])
            cylinder(d=branch_w, h=frame_t_outer, $fn=32);
    }

    // Smooth blend at fork crotch
    translate([cx, cy, 0])
        cylinder(d=branch_w + 2, h=frame_t_outer, $fn=32);
}


// === Assembly ===

difference() {
    union() {
        outer_plate();
        for (i = [0:3])
            y_branch(i);
        inner_pad();
        fan_locating_rim();
        clip_ledges();
    }

    center_opening();
}
